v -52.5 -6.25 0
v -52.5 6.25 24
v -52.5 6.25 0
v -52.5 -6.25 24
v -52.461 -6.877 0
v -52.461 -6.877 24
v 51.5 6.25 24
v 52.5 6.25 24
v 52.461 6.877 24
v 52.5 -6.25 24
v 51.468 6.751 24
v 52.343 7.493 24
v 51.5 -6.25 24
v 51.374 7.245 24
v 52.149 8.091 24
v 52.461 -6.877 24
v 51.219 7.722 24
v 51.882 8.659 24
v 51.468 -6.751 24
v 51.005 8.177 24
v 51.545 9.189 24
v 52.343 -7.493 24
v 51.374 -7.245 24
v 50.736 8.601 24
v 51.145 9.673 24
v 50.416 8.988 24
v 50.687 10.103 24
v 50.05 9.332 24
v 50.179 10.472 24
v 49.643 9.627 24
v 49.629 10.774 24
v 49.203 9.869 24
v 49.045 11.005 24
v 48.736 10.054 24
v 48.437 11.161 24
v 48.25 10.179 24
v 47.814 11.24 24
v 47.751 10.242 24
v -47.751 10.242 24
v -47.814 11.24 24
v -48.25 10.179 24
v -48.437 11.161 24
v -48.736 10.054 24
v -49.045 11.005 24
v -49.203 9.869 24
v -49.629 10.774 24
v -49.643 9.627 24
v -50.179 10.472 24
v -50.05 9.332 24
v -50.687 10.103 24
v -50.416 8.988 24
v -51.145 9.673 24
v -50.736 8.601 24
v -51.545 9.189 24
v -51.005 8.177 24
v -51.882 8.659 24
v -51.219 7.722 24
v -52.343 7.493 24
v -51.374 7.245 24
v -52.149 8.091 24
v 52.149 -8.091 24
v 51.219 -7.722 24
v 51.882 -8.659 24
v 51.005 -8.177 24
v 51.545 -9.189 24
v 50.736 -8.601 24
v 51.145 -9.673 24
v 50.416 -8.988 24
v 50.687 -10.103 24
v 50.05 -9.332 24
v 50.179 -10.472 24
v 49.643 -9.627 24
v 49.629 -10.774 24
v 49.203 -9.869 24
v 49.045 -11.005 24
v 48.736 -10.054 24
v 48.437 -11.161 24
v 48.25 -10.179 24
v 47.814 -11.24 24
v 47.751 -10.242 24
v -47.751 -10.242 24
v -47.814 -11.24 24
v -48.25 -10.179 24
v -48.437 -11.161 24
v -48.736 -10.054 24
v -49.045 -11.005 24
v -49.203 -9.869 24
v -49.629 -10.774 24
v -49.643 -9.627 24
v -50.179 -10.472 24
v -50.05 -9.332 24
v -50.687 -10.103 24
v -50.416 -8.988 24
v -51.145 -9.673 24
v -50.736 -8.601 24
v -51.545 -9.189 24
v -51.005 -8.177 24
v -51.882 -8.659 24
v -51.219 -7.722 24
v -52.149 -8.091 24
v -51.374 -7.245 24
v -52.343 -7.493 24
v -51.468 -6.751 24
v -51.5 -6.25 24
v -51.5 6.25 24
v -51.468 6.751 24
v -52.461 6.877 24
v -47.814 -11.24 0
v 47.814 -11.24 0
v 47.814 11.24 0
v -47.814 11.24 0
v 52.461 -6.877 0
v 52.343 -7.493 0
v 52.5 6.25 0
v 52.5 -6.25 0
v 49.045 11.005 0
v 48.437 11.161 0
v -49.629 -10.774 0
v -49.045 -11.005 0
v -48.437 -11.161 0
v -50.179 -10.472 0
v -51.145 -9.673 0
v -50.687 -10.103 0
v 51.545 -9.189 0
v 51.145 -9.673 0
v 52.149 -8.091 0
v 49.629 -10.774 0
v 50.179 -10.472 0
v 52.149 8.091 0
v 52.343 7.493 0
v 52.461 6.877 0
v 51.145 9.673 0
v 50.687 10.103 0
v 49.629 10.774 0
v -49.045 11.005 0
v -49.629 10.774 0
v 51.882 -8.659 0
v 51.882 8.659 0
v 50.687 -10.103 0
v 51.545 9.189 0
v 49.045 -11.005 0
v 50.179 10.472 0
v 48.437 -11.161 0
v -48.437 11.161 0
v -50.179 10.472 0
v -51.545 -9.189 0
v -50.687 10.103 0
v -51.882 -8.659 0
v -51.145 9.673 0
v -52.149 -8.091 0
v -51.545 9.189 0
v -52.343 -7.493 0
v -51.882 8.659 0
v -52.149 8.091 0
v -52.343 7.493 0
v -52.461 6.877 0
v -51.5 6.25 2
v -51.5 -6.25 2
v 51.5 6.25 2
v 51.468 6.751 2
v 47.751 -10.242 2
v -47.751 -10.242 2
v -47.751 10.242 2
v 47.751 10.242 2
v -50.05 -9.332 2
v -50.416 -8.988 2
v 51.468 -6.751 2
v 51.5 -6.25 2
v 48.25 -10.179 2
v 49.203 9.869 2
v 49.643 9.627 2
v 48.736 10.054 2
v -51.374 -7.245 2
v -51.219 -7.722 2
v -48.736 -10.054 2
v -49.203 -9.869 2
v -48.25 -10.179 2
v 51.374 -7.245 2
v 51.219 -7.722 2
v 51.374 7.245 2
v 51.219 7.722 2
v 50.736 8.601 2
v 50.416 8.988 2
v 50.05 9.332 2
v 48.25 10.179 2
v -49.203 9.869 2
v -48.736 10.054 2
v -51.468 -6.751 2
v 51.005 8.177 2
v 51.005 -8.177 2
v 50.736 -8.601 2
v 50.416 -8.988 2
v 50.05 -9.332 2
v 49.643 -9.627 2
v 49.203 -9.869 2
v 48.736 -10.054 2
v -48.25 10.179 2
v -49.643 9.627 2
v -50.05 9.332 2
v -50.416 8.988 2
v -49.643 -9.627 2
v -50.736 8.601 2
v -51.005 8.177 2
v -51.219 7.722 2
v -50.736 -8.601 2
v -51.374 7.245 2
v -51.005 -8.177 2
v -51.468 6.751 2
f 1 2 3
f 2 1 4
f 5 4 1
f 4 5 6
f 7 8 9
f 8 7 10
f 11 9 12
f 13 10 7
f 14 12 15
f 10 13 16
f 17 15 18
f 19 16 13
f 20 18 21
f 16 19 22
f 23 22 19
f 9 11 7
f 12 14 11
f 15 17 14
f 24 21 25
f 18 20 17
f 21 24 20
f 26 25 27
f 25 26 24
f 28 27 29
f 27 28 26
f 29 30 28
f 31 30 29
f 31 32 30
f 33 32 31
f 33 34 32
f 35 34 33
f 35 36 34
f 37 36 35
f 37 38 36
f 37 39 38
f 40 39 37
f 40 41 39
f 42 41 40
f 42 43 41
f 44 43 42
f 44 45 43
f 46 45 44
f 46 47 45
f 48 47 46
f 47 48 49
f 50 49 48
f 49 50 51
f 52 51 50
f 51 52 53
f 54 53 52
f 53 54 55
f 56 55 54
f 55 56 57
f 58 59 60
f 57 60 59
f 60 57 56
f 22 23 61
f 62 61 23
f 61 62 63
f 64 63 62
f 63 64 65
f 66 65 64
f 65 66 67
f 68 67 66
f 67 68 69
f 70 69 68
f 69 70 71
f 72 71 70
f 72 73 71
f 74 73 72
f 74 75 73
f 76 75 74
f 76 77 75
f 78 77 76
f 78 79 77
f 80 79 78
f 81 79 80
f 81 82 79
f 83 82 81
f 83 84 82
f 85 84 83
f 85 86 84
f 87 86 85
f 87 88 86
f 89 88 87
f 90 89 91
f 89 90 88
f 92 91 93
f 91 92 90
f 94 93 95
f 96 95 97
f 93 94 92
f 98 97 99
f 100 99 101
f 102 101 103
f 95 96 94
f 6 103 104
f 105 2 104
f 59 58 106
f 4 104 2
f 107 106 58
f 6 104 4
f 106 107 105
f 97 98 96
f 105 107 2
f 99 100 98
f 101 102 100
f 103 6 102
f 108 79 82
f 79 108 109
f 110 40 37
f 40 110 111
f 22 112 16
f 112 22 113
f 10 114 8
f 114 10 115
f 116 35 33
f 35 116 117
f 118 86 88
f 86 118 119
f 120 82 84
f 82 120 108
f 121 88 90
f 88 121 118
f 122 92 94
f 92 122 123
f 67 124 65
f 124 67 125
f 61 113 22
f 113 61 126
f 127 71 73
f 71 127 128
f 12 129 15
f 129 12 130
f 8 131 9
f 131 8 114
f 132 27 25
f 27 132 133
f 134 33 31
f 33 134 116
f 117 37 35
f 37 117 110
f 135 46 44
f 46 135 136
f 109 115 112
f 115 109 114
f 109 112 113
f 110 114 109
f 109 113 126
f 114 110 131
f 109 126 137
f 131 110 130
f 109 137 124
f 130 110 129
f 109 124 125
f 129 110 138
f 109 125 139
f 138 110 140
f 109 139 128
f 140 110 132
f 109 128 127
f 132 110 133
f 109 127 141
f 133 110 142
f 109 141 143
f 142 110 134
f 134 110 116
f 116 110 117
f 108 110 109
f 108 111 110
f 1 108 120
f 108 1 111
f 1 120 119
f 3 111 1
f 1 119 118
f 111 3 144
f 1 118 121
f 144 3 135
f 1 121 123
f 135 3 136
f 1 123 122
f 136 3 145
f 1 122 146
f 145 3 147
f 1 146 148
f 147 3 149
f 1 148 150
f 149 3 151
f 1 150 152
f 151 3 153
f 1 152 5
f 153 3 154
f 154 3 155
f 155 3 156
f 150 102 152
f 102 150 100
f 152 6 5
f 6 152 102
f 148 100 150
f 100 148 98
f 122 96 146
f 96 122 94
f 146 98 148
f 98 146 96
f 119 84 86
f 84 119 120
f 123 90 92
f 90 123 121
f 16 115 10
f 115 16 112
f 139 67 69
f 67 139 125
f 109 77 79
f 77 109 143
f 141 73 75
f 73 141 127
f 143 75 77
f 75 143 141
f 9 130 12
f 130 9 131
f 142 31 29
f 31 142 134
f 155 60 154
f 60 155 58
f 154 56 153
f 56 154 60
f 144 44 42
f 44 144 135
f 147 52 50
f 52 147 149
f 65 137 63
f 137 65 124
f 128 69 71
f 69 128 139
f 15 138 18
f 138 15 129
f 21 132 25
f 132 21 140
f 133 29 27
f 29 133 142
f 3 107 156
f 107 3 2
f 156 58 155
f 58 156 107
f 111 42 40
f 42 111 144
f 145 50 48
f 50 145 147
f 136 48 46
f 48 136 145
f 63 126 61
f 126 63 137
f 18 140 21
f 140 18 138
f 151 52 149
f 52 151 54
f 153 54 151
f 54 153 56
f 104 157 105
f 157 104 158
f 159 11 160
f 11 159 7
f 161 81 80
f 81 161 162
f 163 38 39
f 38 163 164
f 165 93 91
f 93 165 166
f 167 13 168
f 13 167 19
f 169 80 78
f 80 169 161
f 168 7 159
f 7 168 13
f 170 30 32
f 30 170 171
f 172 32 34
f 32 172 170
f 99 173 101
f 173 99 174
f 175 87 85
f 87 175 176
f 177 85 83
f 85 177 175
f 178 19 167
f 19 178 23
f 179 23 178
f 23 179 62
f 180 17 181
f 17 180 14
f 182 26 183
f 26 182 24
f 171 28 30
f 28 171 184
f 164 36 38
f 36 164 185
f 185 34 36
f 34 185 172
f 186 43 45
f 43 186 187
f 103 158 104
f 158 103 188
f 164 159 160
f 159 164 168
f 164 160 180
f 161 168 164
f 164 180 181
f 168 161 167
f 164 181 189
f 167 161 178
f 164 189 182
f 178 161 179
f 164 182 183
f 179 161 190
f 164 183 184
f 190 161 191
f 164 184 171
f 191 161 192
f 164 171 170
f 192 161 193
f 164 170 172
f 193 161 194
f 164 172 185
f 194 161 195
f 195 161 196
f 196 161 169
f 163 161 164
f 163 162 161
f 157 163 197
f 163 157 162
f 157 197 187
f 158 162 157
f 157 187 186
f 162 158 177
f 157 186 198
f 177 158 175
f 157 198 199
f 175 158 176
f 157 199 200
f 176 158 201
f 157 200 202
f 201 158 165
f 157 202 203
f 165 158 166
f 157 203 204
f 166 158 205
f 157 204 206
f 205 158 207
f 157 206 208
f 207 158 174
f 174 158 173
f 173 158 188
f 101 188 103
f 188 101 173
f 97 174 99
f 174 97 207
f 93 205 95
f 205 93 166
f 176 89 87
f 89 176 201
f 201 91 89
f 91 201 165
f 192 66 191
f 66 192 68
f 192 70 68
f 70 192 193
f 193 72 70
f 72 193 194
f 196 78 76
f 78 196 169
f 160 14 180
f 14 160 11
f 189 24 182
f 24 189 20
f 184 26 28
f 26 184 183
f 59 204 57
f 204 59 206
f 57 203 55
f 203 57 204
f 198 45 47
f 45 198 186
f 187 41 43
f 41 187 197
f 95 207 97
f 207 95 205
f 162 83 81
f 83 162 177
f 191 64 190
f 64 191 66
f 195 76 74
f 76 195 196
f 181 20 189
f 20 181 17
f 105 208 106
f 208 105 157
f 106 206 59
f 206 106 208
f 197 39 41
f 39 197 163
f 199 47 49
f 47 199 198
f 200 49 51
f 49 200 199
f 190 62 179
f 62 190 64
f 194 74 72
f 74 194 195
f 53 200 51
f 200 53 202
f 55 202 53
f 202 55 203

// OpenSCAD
$fn = 50;


difference() {
	union() {
		hull() {
			translate(v = [-47.5000000000, 6.2500000000, 0]) {
				cylinder(h = 24, r = 5);
			}
			translate(v = [47.5000000000, 6.2500000000, 0]) {
				cylinder(h = 24, r = 5);
			}
			translate(v = [-47.5000000000, -6.2500000000, 0]) {
				cylinder(h = 24, r = 5);
			}
			translate(v = [47.5000000000, -6.2500000000, 0]) {
				cylinder(h = 24, r = 5);
			}
		}
	}
	union() {
		translate(v = [0, 0, 2]) {
			hull() {
				translate(v = [-47.5000000000, 6.2500000000, 0]) {
					cylinder(h = 22, r = 4);
				}
				translate(v = [47.5000000000, 6.2500000000, 0]) {
					cylinder(h = 22, r = 4);
				}
				translate(v = [-47.5000000000, -6.2500000000, 0]) {
					cylinder(h = 22, r = 4);
				}
				translate(v = [47.5000000000, -6.2500000000, 0]) {
					cylinder(h = 22, r = 4);
				}
			}
		}
	}
}
